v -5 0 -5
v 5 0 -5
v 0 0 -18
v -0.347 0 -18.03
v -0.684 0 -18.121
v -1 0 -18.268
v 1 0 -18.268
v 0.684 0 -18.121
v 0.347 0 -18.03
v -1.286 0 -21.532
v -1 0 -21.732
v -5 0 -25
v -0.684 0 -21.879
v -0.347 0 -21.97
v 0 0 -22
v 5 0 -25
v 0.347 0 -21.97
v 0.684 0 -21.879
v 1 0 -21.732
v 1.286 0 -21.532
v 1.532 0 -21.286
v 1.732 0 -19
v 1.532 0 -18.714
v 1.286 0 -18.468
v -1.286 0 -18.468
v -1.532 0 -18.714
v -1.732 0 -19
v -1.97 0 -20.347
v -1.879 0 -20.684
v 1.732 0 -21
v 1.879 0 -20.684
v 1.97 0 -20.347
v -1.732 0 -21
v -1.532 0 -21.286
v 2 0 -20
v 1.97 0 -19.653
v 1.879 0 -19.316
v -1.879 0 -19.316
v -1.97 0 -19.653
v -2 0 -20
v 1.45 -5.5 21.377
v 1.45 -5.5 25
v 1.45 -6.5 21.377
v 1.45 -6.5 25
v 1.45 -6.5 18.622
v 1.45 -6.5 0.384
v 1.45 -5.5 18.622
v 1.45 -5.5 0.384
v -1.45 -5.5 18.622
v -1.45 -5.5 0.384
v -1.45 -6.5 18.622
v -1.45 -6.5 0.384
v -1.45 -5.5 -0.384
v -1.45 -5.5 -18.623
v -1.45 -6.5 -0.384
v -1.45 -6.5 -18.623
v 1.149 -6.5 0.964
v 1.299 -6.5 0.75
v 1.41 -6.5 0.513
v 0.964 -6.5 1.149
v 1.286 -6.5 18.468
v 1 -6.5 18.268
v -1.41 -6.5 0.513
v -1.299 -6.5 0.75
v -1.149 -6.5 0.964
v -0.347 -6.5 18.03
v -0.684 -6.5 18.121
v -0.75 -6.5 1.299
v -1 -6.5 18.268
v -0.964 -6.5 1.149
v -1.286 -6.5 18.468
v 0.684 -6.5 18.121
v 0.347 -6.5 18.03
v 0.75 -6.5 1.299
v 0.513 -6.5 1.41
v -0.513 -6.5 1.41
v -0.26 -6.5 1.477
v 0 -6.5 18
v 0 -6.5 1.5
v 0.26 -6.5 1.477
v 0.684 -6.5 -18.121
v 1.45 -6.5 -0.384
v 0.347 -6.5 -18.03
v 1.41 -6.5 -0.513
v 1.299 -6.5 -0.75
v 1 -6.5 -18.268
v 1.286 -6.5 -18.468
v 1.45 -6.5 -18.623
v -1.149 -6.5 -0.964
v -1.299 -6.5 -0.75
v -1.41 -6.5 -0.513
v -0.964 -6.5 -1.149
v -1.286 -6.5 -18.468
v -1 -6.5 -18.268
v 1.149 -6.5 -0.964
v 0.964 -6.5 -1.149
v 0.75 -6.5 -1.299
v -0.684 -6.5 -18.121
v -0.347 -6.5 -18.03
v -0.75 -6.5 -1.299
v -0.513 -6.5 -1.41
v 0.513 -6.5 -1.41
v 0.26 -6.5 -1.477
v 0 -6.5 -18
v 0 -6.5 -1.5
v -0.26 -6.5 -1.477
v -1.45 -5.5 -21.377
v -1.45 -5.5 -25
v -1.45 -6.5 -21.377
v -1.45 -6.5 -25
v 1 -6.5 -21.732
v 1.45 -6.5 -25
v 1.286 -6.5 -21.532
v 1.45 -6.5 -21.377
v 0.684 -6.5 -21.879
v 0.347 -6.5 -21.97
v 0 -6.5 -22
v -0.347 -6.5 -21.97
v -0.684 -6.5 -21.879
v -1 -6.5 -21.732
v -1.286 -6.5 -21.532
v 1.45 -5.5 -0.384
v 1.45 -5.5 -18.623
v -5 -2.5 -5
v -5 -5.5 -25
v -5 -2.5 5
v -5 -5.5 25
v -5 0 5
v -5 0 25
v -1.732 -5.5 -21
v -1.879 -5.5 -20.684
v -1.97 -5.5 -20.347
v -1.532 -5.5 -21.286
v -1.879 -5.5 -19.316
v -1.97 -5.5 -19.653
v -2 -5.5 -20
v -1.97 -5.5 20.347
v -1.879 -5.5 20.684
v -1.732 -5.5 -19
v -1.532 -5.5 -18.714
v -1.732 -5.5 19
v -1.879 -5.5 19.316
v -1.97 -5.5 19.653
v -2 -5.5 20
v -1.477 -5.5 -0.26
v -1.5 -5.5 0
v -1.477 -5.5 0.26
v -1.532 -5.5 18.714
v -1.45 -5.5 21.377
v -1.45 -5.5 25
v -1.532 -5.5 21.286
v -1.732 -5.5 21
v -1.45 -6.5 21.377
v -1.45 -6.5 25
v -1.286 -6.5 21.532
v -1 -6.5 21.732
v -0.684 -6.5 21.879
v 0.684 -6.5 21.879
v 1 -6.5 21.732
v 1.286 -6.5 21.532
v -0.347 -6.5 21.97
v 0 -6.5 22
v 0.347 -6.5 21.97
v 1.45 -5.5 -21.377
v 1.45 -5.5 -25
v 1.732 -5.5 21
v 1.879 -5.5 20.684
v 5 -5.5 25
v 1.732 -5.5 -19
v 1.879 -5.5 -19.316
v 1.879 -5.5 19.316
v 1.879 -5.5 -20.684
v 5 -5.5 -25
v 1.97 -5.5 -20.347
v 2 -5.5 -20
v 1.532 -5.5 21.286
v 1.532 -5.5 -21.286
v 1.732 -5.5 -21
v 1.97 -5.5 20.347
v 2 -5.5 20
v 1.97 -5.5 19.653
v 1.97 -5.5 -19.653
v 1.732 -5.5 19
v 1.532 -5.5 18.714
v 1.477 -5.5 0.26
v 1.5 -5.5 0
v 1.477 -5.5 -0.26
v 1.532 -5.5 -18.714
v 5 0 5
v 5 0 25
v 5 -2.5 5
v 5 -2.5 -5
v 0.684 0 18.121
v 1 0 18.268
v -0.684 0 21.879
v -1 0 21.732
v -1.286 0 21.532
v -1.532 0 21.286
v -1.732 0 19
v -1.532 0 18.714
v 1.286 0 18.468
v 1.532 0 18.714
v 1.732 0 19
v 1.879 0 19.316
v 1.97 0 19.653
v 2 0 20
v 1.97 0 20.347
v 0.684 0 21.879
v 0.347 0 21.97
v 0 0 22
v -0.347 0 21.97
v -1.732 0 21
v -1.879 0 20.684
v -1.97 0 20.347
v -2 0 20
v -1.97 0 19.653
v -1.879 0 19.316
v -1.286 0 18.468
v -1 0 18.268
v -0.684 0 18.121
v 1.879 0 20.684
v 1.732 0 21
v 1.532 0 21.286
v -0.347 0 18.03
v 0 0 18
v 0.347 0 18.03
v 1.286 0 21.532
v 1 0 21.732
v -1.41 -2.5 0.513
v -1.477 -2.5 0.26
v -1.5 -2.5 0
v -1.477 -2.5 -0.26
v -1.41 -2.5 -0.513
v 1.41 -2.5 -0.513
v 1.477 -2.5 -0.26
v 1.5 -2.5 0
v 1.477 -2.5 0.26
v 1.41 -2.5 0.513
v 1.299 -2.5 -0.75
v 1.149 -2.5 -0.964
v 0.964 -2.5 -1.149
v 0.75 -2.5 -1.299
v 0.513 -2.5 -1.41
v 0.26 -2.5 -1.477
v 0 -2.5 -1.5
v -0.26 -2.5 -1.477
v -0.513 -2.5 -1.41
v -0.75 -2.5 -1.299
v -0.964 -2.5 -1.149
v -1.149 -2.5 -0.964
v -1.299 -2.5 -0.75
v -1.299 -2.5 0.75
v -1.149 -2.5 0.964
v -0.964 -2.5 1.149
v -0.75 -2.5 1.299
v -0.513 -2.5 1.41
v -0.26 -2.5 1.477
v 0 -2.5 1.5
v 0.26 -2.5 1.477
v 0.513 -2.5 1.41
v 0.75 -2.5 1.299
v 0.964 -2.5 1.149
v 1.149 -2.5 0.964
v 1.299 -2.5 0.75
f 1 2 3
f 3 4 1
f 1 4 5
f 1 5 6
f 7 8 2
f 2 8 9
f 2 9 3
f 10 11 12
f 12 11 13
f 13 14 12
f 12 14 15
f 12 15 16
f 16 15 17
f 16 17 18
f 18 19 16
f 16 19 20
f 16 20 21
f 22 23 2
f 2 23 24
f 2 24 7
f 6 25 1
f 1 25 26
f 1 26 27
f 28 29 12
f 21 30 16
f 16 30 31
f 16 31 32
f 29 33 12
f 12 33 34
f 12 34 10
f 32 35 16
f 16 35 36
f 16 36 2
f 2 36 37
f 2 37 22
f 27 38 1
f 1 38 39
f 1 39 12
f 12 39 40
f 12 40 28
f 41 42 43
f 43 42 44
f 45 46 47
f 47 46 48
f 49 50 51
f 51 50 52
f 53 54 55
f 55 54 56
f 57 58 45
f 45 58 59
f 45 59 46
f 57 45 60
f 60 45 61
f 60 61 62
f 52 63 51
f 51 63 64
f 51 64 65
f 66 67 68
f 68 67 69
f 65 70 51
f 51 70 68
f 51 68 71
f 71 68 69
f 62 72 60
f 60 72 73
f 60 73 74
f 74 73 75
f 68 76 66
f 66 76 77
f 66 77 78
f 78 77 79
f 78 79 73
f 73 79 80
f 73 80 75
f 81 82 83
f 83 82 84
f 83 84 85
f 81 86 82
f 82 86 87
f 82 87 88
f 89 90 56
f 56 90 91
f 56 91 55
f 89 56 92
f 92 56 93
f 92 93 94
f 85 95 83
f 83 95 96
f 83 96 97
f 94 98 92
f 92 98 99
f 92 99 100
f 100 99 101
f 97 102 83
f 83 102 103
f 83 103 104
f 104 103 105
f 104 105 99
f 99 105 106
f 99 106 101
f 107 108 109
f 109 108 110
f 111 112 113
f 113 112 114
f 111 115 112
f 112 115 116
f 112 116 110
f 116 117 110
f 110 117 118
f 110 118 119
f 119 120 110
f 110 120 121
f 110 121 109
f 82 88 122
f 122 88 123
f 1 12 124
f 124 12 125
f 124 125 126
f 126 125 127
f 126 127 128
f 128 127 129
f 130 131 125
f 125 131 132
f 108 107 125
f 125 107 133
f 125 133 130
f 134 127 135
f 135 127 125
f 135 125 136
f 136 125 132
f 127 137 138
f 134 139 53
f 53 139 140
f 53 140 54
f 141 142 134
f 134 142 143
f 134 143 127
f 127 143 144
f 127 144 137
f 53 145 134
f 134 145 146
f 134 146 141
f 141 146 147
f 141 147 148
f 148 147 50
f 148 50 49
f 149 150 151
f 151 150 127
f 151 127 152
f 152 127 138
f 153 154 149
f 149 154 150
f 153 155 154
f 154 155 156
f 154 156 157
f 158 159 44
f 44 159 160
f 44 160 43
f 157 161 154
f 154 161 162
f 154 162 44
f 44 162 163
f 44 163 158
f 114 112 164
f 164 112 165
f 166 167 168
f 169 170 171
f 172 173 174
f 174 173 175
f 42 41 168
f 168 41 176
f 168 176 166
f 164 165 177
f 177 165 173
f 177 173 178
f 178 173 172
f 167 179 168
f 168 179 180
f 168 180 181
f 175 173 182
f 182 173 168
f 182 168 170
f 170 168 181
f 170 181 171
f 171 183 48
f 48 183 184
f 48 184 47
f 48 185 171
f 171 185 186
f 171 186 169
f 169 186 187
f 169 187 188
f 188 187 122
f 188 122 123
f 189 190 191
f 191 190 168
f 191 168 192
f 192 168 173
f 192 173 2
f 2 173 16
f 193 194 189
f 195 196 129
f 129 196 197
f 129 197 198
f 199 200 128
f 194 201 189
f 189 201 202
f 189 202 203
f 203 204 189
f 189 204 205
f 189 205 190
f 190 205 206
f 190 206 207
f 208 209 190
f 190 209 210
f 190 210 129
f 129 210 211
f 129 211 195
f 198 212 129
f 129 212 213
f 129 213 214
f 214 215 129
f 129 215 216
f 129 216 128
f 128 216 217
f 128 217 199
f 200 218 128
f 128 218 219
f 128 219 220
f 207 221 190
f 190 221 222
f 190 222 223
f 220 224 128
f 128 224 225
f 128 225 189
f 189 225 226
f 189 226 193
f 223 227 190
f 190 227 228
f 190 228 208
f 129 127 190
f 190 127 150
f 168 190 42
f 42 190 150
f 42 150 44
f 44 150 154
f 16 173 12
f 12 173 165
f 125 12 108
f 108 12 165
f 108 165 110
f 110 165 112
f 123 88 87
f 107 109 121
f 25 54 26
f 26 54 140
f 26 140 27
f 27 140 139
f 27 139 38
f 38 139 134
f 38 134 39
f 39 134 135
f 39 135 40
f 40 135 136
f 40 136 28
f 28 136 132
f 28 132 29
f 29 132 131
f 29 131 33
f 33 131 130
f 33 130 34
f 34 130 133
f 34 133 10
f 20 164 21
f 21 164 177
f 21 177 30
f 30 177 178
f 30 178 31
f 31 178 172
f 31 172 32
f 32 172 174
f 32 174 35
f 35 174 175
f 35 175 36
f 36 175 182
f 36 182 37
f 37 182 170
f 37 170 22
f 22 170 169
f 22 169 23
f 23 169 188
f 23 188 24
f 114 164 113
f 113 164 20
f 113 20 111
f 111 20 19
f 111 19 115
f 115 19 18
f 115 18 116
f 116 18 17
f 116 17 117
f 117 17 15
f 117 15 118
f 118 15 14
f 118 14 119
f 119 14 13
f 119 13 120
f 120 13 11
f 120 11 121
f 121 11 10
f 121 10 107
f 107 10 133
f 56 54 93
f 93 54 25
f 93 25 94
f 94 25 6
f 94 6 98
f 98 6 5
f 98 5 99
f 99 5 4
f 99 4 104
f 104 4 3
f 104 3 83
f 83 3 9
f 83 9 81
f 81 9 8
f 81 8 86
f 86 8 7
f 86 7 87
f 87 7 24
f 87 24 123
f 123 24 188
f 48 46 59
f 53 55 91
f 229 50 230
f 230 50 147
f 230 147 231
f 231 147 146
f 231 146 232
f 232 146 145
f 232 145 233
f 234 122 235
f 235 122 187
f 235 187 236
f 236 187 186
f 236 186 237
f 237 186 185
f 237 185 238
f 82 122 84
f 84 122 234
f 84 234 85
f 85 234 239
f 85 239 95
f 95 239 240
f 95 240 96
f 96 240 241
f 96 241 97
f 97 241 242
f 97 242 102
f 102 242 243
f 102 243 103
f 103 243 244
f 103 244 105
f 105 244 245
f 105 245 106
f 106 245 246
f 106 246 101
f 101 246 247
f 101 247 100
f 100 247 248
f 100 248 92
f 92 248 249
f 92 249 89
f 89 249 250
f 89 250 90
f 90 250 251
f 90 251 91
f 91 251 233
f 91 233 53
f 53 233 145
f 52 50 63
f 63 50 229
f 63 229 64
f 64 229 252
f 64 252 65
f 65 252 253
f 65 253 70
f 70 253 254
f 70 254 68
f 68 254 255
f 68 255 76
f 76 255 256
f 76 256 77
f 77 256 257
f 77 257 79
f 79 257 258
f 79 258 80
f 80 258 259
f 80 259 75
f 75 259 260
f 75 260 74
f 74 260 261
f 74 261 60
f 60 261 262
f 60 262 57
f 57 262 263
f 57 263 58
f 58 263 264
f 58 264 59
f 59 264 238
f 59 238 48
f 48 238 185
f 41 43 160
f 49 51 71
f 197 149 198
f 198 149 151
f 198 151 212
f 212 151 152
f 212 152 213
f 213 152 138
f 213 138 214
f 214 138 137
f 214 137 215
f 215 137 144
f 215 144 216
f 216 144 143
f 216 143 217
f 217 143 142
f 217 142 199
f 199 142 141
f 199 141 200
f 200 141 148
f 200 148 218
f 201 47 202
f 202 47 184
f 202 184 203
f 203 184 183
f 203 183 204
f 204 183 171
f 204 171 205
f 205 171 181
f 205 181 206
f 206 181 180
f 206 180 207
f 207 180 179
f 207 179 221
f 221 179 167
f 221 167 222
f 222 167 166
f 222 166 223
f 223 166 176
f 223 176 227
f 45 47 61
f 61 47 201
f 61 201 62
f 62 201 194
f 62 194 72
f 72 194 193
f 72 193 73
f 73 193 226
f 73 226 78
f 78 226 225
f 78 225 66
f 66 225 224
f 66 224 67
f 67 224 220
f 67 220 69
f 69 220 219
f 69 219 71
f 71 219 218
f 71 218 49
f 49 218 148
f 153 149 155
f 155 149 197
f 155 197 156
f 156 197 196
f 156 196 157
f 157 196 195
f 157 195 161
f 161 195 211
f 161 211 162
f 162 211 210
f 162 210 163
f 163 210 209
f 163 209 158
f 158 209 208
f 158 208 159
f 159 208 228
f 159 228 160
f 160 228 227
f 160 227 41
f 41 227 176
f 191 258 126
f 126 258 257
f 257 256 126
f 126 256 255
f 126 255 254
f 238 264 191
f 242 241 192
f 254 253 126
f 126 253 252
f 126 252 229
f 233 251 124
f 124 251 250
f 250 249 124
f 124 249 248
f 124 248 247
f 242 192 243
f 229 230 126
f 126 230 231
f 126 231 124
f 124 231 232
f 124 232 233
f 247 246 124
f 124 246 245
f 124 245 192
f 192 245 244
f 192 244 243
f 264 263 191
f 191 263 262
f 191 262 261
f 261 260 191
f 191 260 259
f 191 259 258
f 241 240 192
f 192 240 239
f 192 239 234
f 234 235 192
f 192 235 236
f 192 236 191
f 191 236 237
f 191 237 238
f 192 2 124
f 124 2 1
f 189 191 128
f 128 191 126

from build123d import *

# Parameters (mm, degrees)
MAIN_DEPTH         = 25
SKETCH2_R          = 2
SKETCH2_R_2        = 1.5
HOLES_DEPTH        = 7.5
SKETCH3_W          = 10
SKETCH3_H          = 2.5
CUT_EXTRUDE2_DEPTH = 11


with BuildPart() as part:
    # Sketch1 → Main (new body, symmetric)
    with BuildSketch(Plane.XY):
        Polygon((-5, 0), (5, 0), (5, -5.5), (1.45, -5.5), (1.45, -6.5), (-1.45, -6.5), (-1.45, -5.5), (-5, -5.5), align=None)
    extrude(amount=MAIN_DEPTH, both=True)

    # Sketch2 → Holes (cut, through all)
    with BuildSketch(Plane(origin=(0, 0, 0), x_dir=(1, 0, 0), z_dir=(0, 1, 0))):
        with Locations((0, 20)):
            Circle(SKETCH2_R)
        with Locations((0, -20)):
            Circle(SKETCH2_R)
        Circle(SKETCH2_R_2)
    extrude(amount=-HOLES_DEPTH, mode=Mode.SUBTRACT)

    # Sketch3 → Cut-Extrude2 (cut, through all)
    with BuildSketch(Plane.ZY.offset(5)):
        with Locations((0, -1.25)):
            Rectangle(SKETCH3_W, SKETCH3_H)
    extrude(amount=-CUT_EXTRUDE2_DEPTH, mode=Mode.SUBTRACT)


solid = part.part
